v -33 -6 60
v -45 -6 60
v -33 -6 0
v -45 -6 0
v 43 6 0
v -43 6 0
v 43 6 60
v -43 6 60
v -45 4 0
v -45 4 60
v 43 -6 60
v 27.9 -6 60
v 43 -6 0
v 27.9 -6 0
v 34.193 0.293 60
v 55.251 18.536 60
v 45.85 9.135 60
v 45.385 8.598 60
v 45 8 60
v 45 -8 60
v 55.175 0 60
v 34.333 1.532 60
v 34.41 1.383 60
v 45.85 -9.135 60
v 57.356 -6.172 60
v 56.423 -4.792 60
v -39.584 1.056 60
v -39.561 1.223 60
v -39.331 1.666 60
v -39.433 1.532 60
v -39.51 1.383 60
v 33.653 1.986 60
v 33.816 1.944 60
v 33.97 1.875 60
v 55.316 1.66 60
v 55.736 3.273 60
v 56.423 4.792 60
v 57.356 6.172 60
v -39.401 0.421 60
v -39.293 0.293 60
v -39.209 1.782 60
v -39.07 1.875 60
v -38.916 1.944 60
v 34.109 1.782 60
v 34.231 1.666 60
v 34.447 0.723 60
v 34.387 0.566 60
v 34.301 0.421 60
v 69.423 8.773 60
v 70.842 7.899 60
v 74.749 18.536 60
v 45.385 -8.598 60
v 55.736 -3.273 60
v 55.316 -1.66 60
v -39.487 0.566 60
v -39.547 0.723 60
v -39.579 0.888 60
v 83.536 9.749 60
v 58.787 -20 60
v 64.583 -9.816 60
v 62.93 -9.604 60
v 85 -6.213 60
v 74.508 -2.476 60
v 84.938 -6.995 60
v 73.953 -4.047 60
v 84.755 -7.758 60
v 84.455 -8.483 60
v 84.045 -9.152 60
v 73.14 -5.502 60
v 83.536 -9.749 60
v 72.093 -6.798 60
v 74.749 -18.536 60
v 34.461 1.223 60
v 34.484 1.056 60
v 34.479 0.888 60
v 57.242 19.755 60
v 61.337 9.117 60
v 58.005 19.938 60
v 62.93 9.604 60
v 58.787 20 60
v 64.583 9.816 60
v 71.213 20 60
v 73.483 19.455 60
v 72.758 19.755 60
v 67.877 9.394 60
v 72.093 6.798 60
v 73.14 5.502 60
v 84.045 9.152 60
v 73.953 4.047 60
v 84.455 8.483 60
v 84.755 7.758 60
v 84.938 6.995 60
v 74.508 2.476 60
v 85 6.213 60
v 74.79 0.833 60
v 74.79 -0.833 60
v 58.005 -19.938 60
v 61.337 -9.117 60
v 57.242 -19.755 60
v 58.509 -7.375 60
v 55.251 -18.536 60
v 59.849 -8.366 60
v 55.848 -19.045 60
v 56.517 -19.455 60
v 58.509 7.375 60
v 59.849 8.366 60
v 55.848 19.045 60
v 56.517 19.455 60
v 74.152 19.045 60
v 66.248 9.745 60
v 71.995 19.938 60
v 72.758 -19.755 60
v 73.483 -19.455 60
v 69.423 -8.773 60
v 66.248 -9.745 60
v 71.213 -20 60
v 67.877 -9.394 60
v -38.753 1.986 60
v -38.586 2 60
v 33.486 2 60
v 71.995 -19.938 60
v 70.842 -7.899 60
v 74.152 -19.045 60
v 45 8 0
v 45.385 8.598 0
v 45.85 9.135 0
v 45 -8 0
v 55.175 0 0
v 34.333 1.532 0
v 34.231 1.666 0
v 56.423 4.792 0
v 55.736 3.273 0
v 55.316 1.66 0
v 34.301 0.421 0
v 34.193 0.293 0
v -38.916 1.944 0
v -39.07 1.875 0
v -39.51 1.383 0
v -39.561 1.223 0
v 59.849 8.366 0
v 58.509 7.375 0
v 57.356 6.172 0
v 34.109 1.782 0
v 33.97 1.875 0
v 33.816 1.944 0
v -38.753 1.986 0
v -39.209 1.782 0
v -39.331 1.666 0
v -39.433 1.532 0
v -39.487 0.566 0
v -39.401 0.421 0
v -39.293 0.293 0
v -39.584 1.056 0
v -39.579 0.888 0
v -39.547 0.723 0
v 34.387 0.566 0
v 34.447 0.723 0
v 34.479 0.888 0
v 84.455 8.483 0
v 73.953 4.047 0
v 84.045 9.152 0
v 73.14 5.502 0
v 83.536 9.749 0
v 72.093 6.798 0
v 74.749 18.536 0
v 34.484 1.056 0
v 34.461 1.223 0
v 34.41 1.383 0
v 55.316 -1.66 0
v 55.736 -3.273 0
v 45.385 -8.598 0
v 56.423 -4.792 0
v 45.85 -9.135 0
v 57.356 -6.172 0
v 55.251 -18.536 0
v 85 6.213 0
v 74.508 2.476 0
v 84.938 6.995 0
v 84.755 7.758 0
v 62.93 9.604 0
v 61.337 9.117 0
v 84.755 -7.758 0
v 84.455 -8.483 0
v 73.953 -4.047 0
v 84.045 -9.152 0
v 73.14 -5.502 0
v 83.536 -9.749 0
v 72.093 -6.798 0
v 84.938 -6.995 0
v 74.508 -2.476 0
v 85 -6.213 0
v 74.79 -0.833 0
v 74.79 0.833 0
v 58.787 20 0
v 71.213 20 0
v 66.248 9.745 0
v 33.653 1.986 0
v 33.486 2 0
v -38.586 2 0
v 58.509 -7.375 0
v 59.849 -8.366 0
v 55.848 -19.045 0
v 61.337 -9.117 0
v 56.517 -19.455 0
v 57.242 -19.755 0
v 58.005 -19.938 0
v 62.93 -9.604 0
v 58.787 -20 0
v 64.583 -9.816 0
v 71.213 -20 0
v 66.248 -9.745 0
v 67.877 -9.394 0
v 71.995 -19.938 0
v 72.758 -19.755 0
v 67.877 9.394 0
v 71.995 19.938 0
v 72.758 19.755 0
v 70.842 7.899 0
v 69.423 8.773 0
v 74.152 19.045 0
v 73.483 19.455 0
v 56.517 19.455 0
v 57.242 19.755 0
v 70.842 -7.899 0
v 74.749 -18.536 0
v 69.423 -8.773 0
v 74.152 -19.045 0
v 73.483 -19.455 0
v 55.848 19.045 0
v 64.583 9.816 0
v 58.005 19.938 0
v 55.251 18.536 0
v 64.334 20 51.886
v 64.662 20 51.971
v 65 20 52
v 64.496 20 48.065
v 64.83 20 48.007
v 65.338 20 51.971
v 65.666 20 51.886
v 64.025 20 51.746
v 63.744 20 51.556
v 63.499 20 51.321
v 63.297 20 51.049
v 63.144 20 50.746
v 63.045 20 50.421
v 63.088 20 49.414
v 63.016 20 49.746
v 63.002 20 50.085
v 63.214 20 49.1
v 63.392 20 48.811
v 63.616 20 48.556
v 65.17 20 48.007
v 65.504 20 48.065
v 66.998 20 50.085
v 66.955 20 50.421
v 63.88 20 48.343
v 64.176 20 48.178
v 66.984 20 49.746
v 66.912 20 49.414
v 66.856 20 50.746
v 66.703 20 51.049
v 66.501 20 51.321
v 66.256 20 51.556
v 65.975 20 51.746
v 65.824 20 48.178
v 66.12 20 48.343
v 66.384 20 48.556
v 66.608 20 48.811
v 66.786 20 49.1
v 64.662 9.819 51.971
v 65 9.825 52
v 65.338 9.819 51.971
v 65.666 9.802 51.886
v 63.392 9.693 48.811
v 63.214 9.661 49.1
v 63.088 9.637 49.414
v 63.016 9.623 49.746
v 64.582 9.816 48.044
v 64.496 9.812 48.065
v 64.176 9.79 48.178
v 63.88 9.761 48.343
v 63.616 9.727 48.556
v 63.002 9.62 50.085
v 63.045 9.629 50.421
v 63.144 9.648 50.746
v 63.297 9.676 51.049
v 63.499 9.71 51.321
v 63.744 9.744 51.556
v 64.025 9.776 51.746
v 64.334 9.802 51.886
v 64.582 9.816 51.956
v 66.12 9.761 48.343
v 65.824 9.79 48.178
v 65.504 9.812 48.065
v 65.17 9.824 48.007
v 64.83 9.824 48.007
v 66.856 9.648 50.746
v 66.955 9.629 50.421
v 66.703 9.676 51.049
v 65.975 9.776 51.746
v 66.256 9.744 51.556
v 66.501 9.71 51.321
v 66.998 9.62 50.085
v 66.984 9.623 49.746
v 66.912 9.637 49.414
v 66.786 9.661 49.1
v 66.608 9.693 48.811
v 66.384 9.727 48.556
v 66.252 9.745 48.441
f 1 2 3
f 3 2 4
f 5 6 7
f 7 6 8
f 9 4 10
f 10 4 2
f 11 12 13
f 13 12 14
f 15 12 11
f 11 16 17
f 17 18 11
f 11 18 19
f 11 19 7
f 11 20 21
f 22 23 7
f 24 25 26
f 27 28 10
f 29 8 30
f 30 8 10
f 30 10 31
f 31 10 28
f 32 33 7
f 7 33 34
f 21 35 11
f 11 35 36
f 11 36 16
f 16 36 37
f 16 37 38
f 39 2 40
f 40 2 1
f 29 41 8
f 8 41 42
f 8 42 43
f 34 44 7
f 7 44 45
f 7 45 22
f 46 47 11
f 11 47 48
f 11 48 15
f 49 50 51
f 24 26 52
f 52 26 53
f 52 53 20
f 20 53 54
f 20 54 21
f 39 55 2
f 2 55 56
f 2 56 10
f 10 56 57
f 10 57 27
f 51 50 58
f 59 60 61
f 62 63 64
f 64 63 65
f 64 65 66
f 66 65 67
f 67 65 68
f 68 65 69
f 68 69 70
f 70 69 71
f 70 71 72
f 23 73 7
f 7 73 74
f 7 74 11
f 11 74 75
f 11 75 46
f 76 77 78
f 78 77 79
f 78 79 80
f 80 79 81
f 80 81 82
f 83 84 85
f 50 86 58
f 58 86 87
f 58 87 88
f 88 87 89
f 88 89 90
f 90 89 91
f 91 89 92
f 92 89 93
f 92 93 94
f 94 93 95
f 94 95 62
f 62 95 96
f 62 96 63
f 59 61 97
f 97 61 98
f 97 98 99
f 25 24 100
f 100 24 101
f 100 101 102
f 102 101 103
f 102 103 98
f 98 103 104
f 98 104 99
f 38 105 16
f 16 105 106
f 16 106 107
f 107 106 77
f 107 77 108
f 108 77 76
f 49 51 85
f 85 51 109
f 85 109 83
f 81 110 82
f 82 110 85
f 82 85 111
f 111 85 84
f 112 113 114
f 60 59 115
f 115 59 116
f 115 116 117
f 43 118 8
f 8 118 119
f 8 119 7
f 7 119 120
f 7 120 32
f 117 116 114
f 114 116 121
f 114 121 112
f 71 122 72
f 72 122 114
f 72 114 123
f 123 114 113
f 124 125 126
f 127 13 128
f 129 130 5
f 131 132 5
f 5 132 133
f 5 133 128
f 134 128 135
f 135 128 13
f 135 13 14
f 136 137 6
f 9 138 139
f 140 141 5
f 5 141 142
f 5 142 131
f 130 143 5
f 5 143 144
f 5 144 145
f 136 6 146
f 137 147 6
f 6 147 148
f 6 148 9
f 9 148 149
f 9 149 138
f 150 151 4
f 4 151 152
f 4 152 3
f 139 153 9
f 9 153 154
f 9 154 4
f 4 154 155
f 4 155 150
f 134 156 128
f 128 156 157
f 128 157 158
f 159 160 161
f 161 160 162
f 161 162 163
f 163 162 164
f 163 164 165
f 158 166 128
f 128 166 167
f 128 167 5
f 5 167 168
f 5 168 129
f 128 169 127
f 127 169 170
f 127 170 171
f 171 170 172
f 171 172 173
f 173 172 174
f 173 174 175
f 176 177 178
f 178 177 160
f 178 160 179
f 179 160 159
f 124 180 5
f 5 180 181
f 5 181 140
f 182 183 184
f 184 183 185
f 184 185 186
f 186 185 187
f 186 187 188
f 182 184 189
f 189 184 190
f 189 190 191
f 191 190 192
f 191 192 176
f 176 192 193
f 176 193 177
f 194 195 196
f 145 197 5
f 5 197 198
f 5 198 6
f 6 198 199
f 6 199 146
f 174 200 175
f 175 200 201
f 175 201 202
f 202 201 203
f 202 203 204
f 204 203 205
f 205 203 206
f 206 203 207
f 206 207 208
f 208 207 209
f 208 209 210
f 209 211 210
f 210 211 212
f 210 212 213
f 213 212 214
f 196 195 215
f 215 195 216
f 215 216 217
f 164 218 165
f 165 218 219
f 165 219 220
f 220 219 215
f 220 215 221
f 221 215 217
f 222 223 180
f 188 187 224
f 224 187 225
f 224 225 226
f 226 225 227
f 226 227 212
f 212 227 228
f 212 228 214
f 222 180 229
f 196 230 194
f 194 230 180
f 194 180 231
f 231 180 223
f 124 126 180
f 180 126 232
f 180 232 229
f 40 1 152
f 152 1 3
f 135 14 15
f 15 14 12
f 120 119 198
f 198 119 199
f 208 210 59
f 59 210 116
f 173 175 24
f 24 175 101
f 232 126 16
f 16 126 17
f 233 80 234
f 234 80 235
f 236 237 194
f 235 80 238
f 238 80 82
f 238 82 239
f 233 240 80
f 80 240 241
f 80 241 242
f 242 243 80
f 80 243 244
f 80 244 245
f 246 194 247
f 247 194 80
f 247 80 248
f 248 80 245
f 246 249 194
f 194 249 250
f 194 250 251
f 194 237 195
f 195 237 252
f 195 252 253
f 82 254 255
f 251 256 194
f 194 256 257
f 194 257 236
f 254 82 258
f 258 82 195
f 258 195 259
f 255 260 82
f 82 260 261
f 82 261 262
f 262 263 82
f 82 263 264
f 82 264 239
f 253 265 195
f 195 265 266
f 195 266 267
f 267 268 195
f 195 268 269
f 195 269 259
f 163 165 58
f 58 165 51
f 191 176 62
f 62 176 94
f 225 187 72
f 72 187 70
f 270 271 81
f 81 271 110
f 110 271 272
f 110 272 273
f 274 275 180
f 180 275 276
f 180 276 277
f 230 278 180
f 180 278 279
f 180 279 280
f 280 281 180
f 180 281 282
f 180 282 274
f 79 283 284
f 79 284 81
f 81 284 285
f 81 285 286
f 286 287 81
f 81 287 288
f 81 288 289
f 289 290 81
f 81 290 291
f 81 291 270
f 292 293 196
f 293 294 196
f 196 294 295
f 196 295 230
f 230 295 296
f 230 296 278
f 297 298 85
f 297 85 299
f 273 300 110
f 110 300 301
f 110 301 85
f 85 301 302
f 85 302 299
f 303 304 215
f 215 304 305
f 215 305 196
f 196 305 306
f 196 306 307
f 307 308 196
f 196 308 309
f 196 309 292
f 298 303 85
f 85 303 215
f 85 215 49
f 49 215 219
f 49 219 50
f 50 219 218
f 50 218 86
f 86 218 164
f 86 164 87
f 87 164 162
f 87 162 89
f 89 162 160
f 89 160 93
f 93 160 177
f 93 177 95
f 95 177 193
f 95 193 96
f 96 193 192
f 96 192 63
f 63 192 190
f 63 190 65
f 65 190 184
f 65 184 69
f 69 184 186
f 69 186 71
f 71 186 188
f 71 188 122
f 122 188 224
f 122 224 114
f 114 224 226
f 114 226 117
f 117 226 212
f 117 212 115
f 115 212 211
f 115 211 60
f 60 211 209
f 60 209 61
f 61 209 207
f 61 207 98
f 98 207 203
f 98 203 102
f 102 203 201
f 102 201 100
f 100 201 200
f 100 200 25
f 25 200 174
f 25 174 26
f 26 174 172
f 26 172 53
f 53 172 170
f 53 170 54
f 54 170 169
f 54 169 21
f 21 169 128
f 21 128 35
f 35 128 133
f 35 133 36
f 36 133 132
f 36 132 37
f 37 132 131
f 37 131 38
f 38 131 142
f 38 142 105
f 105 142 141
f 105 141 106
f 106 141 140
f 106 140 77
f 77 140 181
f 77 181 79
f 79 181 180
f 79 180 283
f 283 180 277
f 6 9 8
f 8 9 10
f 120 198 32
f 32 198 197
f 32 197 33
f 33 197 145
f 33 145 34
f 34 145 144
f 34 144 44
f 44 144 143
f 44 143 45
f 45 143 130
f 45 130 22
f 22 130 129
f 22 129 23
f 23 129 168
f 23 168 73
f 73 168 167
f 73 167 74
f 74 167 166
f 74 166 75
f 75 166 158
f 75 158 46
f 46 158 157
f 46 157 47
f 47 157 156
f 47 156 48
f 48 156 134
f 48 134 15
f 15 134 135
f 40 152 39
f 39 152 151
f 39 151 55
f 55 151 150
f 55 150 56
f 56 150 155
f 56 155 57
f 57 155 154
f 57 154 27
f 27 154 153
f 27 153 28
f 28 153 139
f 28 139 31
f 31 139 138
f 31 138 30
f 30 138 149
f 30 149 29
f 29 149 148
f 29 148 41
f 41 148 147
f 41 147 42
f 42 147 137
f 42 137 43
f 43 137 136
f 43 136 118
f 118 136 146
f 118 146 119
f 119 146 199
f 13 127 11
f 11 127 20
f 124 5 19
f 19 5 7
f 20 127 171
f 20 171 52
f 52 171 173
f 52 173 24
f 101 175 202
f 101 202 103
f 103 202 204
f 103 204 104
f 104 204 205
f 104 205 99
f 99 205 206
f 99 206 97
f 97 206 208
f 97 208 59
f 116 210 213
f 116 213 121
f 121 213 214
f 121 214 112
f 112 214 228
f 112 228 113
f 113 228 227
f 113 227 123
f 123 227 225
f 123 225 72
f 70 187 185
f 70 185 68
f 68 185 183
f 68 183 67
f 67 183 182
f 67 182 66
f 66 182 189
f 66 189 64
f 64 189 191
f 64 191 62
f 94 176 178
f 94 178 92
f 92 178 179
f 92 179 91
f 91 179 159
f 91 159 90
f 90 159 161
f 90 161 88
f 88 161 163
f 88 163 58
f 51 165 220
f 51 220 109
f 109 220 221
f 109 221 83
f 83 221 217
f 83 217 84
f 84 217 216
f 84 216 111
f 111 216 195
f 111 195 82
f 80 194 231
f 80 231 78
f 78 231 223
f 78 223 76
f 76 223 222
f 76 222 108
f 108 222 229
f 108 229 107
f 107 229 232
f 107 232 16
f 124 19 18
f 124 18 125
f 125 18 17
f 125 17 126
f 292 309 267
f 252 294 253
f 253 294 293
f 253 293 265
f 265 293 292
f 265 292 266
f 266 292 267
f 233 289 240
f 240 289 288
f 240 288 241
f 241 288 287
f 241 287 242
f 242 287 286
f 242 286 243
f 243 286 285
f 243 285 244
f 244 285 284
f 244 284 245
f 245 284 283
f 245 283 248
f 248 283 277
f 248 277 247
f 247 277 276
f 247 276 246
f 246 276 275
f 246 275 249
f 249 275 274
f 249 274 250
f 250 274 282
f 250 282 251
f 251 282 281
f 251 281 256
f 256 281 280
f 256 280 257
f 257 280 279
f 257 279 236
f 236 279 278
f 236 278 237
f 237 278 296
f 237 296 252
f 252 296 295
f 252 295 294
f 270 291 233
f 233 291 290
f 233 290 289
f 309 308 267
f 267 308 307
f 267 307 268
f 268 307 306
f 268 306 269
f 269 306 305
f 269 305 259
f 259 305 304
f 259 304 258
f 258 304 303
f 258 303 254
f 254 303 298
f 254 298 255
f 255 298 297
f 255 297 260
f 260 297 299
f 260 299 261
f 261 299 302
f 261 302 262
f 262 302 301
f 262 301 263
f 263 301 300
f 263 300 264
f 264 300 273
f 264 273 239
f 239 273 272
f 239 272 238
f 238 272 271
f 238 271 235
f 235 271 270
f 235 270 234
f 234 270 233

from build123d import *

# Parameters (mm, degrees)
SKETCH_1_W               = 90
SKETCH_1_H               = 12
EXTRUDE_1_DEPTH          = 60
CUT_EXTRUDE_1_DEPTH      = 60
SKETCH_3_R               = 9.825
EXTRUDE_2_DEPTH          = 60
CHAMFER_1_SIZE           = 2
FILLET_1_R               = 1
CHAMFER_3_SIZE           = 2
FILLET_2_R               = 5
CUT_EXTRUDE_2_REACH      = 113.467
CUT_EXTRUDE_2_END_RADIUS = 9.825
SKETCH_4_R               = 2


with BuildPart() as part:
    # Эскиз1 → Бобышка-Вытянуть1 (new body)
    with BuildSketch(Plane.XY):
        Rectangle(SKETCH_1_W, SKETCH_1_H)
    extrude(amount=EXTRUDE_1_DEPTH)

    # Эскиз2 → Вырез-Вытянуть1 (cut)
    with BuildSketch(Plane.XY.offset(60)):
        Polygon((-41, 2), (-33, -6), (27.9, -6), (35.9, 2), align=None)
    extrude(amount=-CUT_EXTRUDE_1_DEPTH, mode=Mode.SUBTRACT)

    # Эскиз3 → Бобышка-Вытянуть2 (add)
    with BuildSketch(Plane(origin=(0, 0, 0), x_dir=(-1, 0, 0), z_dir=(0, 0, -1))):
        Polygon((-73.284271247, -20), (-56.715728753, -20), (-45, -8.284271247), (-45, 8.284271247), (-56.715728753, 20), (-73.284271247, 20), (-85, 8.284271247), (-85, -8.284271247), align=None)
        with Locations((-65, 0)):
            Circle(SKETCH_3_R, mode=Mode.SUBTRACT)
    extrude(amount=-EXTRUDE_2_DEPTH)

    # Фаска1
    chamfer_1_edges = [part.edges().sort_by_distance(p)[0] for p in [
        (-45, 6, 30),
    ]]
    chamfer(chamfer_1_edges, length=CHAMFER_1_SIZE)

    # Скругление1
    fillet_1_edges = [part.edges().sort_by_distance(p)[0] for p in [
        (35.9, 2, 30),
        (-41, 2, 30),
    ]]
    fillet(fillet_1_edges, radius=FILLET_1_R)

    # Фаска3
    chamfer_3_edges = [part.edges().sort_by_distance(p)[0] for p in [
        (45, -6, 30),
        (45, 6, 30),
    ]]
    chamfer(chamfer_3_edges, length=CHAMFER_3_SIZE)

    # Скругление2
    # the kernel refuses this fillet: 5 mm, written as the material it takes off along each edge
    with BuildSketch(Plane(origin=(45, -8.284271247, -3.006121321), x_dir=(0.7071067811865452, -0.7071067811865497, 0), z_dir=(0, 0, 1))) as fillet_2_piece_1:
        with BuildLine():
            CenterArc((1.202448528, 5), FILLET_2_R, 253.698506294, 16.301493706)
            Line((-0.201010127, 0.201010127), (-0.2290793, 0.105030329))
            ThreePointArc((-0.2290793, 0.105030329), (-0.171215742, 0.029794385), (-0.070710678, -0.070710678))
            Line((-0.070710678, -0.070710678), (0, -0.1))
            Line((0, -0.1), (1.202448528, -0.1))
            Line((1.202448528, -0.1), (1.202448528, 0))
        make_face()
    extrude(amount=66.012242642, mode=Mode.SUBTRACT)
    with BuildSketch(Plane(origin=(56.715728753, -20, -5.17766953), x_dir=(1, 0, 0), z_dir=(0, 0, 1)), Plane(origin=(73.284271247, -20, -5.17766953), x_dir=(0.7071067811865485, 0.7071067811865467, 0), z_dir=(0, 0, 1)), Plane(origin=(85, -8.284271247, -5.17766953), x_dir=(0, 1, 0), z_dir=(0, 0, 1)), Plane(origin=(85, 8.284271247, -5.17766953), x_dir=(-0.7071067811865461, 0.7071067811865487, 0), z_dir=(0, 0, 1)), Plane(origin=(73.284271247, 20, -5.17766953), x_dir=(-1, 0, 0), z_dir=(0, 0, 1)), Plane(origin=(56.715728753, 20, -5.17766953), x_dir=(-0.7071067811865467, -0.7071067811865483, 0), z_dir=(0, 0, 1))) as fillet_2_piece_2:
        with BuildLine():
            CenterArc((FILLET_2_R * 0.414213562373, FILLET_2_R), FILLET_2_R, 225, 45)
            Line((-FILLET_2_R * 0.292893218813, FILLET_2_R * 0.292893218813), (-FILLET_2_R * 0.307035354437, FILLET_2_R * 0.27875108319))
            Line((-FILLET_2_R * 0.307035354437, FILLET_2_R * 0.27875108319), (-FILLET_2_R * 0.00828427124746, -FILLET_2_R * 0.02))
            Line((-FILLET_2_R * 0.00828427124746, -FILLET_2_R * 0.02), (FILLET_2_R * 0.414213562373, -FILLET_2_R * 0.02))
            Line((FILLET_2_R * 0.414213562373, -FILLET_2_R * 0.02), (FILLET_2_R * 0.414213562373, 0))
        make_face()
    extrude(amount=70.355339059, mode=Mode.SUBTRACT)
    with BuildSketch(Plane(origin=(45, 8.284271247, -3.006121321), x_dir=(0, -1, 0), z_dir=(0, 0, 1))) as fillet_2_piece_3:
        with BuildLine():
            CenterArc((2.685274397, 4.385793414), FILLET_2_R, 225, 16.301493706)
            Line((-0.850259508, 0.850259508), (-0.920970187, 0.77954883))
            Line((-0.920970187, 0.77954883), (-0.070710678, -0.070710678))
            Line((-0.070710678, -0.070710678), (0, -0.1))
            ThreePointArc((0, -0.1), (0.142135624, -0.1), (0.236251184, -0.087715868))
            Line((0.236251184, -0.087715868), (0.284271247, 0))
        make_face()
    extrude(amount=66.012242642, mode=Mode.SUBTRACT)

    # Вырез-Вытянуть2: up to this cylinder (the profile starts outside it)
    cut_extrude_2_end = Plane(origin=(65, 0, 50), z_dir=(0, 0, -1)) * Cylinder(CUT_EXTRUDE_2_END_RADIUS, 247.584, mode=Mode.PRIVATE)
    # Эскиз4 → Вырез-Вытянуть2 (cut, up to the surface)
    with BuildSketch(Plane(origin=(0, 20, 0), x_dir=(1, 0, 0), z_dir=(0, 1, 0)), mode=Mode.PRIVATE) as cut_extrude_2_sk1:
        with Locations(Location((65, -50, 0), (0, 0, 270))):
            Circle(SKETCH_4_R)
    cut_extrude_2_tool1 = extrude(cut_extrude_2_sk1.sketch, amount=-CUT_EXTRUDE_2_REACH, mode=Mode.PRIVATE) - cut_extrude_2_end
    add(cut_extrude_2_tool1.solids().sort_by_distance((65, 20, 50))[0], mode=Mode.SUBTRACT)


solid = part.part
